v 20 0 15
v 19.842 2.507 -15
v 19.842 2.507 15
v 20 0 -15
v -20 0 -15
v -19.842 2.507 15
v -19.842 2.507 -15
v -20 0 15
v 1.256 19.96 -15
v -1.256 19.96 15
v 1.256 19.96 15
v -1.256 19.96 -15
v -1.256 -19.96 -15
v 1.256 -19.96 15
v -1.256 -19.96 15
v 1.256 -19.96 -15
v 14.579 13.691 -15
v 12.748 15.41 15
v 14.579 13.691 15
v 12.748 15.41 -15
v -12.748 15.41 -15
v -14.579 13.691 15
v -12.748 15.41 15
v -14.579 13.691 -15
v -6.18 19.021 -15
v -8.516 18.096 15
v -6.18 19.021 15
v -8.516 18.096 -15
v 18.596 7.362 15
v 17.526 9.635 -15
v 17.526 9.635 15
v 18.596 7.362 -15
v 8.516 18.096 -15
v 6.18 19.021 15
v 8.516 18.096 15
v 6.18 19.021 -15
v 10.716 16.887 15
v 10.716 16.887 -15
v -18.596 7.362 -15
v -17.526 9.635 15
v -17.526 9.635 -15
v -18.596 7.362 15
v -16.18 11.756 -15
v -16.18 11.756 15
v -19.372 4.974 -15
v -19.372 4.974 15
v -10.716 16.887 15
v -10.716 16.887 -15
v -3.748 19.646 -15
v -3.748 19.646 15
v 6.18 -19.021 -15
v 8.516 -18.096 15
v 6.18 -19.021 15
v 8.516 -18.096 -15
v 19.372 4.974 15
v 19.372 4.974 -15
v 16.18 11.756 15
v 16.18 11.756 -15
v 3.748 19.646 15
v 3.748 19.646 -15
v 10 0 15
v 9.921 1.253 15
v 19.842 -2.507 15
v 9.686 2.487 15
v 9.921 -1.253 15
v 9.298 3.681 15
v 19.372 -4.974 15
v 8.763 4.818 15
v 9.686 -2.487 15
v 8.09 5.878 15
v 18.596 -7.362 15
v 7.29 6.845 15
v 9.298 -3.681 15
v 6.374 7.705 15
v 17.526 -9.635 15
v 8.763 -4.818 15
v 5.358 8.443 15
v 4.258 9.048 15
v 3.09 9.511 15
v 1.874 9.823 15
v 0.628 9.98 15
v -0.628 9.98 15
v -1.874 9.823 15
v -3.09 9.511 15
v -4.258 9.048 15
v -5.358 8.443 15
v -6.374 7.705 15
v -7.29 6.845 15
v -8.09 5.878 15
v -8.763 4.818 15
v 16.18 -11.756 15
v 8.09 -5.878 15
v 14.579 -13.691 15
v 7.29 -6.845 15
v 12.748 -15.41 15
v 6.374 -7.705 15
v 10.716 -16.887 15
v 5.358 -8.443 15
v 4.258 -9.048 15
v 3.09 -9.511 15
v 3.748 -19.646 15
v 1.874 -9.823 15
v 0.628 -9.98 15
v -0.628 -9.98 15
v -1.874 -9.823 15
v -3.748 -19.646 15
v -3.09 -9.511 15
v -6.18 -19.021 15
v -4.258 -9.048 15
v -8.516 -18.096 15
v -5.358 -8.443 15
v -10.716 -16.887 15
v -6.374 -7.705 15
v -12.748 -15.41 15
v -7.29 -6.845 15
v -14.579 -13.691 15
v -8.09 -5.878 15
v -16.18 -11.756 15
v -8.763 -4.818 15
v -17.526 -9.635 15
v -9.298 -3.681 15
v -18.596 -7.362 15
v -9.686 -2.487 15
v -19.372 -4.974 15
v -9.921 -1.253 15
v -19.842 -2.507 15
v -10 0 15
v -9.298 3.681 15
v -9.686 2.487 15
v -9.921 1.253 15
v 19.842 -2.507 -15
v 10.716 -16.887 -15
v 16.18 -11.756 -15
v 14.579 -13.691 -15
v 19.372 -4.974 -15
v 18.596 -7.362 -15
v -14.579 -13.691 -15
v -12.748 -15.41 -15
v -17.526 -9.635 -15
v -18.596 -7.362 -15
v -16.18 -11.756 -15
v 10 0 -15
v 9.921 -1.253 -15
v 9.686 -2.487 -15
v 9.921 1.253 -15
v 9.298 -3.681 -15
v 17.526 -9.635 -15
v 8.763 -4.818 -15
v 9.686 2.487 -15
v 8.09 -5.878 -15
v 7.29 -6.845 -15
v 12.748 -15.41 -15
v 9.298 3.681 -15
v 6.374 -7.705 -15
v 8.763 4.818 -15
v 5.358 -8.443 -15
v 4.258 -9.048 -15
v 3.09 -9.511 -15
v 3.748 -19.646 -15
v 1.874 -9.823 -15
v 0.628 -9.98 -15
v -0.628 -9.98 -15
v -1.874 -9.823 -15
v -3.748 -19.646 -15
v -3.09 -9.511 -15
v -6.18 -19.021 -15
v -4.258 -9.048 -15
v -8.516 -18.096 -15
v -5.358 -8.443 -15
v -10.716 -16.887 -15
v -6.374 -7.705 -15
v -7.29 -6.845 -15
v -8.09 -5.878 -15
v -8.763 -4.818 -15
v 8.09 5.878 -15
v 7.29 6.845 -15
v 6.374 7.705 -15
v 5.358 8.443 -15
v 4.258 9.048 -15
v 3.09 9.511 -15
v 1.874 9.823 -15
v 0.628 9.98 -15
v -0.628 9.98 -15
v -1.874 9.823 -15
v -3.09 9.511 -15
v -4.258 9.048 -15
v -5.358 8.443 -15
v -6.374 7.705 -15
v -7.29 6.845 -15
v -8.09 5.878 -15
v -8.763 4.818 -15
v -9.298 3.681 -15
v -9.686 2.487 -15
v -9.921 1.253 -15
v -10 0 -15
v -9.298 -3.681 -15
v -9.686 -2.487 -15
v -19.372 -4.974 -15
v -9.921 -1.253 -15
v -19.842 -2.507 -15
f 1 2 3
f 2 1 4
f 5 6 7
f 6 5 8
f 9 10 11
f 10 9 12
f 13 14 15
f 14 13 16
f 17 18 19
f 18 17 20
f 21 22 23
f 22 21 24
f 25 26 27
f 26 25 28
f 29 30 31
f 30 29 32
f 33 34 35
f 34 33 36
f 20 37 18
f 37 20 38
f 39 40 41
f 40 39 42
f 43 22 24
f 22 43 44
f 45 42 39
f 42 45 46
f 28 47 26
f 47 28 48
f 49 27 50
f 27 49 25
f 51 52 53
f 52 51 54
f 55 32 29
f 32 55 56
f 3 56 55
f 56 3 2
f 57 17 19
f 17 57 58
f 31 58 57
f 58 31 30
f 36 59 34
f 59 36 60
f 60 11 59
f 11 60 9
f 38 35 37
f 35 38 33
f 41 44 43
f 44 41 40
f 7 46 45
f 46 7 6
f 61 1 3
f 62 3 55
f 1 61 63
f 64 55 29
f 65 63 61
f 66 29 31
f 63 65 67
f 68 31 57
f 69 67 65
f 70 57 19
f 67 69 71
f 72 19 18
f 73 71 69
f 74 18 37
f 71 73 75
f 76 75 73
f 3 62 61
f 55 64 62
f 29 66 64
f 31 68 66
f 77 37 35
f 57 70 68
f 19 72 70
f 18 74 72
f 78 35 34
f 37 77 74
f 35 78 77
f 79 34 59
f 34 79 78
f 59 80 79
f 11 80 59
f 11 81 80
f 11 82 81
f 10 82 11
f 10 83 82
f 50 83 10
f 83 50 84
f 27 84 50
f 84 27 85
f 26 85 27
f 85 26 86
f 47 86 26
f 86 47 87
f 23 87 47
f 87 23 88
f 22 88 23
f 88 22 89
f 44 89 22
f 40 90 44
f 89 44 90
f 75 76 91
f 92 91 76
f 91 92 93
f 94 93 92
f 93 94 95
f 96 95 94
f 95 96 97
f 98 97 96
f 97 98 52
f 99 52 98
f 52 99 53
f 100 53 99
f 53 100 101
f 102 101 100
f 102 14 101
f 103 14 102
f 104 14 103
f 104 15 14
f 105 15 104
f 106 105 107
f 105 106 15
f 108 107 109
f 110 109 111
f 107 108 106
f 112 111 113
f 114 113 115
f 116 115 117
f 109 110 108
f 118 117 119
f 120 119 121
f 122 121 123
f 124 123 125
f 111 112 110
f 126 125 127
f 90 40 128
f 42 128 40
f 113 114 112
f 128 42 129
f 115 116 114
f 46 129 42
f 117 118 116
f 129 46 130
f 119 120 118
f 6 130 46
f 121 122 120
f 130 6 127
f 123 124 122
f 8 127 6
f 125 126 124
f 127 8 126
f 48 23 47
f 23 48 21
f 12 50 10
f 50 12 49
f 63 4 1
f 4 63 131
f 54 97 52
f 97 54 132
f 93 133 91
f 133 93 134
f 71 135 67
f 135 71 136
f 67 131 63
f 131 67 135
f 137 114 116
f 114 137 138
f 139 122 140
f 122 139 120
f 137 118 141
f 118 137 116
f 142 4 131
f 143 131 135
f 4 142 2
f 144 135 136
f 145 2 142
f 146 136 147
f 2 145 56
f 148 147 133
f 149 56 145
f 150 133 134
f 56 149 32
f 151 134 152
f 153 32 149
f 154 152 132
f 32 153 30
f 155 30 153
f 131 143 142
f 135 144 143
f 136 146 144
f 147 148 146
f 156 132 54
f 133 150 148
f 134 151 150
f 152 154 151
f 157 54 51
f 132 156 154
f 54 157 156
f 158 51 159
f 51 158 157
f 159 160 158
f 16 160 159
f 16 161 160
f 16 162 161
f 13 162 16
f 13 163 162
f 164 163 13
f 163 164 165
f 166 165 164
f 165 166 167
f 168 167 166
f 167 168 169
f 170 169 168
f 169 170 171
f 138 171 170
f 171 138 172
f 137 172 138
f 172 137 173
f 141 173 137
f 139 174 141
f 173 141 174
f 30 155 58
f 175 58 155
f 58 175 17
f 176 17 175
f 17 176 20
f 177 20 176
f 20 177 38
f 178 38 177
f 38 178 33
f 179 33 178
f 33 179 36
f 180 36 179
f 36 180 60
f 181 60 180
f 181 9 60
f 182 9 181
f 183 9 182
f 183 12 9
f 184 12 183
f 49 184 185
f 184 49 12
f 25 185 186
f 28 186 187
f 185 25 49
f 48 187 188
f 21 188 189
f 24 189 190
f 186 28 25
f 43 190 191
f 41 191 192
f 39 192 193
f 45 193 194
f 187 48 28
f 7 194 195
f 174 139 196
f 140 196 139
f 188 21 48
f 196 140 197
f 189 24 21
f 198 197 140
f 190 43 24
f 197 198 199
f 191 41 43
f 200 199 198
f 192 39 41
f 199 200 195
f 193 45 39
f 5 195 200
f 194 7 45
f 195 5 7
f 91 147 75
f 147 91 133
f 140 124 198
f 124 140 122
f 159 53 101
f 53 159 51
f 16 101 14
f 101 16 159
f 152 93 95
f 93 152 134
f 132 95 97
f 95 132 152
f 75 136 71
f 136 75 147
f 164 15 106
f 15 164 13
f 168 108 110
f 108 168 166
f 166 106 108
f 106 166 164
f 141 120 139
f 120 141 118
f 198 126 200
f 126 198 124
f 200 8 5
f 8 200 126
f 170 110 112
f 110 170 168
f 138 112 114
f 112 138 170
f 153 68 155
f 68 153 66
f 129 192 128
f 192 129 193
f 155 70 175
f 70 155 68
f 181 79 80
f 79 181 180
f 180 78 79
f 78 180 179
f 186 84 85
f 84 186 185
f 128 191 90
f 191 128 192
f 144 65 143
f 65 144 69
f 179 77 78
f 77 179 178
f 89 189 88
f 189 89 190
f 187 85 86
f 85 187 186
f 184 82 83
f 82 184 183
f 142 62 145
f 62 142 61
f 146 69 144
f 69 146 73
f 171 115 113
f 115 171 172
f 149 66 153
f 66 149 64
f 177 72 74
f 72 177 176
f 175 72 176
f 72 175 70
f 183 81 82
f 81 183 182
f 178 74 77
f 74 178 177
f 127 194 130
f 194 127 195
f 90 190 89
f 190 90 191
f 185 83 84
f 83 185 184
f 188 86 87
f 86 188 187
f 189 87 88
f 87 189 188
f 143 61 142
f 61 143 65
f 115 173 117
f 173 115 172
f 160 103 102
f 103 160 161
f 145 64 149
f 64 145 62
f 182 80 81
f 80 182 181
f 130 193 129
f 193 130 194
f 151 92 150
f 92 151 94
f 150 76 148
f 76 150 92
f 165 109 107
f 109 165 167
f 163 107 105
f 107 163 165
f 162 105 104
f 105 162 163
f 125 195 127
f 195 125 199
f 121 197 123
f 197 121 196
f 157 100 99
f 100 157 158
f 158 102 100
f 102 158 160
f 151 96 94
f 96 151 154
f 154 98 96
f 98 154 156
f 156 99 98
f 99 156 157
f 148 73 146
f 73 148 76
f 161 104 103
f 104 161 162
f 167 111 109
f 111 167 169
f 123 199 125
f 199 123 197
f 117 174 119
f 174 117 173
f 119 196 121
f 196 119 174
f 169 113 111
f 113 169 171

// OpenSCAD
$fn = 50;


difference() {
	union() {
		translate(v = [0, 0, -15.0000000000]) {
			cylinder(h = 30, r = 20.0000000000);
		}
	}
	union() {
		translate(v = [0, 0, -100.0000000000]) {
			cylinder(h = 200, r = 10);
		}
	}
}
